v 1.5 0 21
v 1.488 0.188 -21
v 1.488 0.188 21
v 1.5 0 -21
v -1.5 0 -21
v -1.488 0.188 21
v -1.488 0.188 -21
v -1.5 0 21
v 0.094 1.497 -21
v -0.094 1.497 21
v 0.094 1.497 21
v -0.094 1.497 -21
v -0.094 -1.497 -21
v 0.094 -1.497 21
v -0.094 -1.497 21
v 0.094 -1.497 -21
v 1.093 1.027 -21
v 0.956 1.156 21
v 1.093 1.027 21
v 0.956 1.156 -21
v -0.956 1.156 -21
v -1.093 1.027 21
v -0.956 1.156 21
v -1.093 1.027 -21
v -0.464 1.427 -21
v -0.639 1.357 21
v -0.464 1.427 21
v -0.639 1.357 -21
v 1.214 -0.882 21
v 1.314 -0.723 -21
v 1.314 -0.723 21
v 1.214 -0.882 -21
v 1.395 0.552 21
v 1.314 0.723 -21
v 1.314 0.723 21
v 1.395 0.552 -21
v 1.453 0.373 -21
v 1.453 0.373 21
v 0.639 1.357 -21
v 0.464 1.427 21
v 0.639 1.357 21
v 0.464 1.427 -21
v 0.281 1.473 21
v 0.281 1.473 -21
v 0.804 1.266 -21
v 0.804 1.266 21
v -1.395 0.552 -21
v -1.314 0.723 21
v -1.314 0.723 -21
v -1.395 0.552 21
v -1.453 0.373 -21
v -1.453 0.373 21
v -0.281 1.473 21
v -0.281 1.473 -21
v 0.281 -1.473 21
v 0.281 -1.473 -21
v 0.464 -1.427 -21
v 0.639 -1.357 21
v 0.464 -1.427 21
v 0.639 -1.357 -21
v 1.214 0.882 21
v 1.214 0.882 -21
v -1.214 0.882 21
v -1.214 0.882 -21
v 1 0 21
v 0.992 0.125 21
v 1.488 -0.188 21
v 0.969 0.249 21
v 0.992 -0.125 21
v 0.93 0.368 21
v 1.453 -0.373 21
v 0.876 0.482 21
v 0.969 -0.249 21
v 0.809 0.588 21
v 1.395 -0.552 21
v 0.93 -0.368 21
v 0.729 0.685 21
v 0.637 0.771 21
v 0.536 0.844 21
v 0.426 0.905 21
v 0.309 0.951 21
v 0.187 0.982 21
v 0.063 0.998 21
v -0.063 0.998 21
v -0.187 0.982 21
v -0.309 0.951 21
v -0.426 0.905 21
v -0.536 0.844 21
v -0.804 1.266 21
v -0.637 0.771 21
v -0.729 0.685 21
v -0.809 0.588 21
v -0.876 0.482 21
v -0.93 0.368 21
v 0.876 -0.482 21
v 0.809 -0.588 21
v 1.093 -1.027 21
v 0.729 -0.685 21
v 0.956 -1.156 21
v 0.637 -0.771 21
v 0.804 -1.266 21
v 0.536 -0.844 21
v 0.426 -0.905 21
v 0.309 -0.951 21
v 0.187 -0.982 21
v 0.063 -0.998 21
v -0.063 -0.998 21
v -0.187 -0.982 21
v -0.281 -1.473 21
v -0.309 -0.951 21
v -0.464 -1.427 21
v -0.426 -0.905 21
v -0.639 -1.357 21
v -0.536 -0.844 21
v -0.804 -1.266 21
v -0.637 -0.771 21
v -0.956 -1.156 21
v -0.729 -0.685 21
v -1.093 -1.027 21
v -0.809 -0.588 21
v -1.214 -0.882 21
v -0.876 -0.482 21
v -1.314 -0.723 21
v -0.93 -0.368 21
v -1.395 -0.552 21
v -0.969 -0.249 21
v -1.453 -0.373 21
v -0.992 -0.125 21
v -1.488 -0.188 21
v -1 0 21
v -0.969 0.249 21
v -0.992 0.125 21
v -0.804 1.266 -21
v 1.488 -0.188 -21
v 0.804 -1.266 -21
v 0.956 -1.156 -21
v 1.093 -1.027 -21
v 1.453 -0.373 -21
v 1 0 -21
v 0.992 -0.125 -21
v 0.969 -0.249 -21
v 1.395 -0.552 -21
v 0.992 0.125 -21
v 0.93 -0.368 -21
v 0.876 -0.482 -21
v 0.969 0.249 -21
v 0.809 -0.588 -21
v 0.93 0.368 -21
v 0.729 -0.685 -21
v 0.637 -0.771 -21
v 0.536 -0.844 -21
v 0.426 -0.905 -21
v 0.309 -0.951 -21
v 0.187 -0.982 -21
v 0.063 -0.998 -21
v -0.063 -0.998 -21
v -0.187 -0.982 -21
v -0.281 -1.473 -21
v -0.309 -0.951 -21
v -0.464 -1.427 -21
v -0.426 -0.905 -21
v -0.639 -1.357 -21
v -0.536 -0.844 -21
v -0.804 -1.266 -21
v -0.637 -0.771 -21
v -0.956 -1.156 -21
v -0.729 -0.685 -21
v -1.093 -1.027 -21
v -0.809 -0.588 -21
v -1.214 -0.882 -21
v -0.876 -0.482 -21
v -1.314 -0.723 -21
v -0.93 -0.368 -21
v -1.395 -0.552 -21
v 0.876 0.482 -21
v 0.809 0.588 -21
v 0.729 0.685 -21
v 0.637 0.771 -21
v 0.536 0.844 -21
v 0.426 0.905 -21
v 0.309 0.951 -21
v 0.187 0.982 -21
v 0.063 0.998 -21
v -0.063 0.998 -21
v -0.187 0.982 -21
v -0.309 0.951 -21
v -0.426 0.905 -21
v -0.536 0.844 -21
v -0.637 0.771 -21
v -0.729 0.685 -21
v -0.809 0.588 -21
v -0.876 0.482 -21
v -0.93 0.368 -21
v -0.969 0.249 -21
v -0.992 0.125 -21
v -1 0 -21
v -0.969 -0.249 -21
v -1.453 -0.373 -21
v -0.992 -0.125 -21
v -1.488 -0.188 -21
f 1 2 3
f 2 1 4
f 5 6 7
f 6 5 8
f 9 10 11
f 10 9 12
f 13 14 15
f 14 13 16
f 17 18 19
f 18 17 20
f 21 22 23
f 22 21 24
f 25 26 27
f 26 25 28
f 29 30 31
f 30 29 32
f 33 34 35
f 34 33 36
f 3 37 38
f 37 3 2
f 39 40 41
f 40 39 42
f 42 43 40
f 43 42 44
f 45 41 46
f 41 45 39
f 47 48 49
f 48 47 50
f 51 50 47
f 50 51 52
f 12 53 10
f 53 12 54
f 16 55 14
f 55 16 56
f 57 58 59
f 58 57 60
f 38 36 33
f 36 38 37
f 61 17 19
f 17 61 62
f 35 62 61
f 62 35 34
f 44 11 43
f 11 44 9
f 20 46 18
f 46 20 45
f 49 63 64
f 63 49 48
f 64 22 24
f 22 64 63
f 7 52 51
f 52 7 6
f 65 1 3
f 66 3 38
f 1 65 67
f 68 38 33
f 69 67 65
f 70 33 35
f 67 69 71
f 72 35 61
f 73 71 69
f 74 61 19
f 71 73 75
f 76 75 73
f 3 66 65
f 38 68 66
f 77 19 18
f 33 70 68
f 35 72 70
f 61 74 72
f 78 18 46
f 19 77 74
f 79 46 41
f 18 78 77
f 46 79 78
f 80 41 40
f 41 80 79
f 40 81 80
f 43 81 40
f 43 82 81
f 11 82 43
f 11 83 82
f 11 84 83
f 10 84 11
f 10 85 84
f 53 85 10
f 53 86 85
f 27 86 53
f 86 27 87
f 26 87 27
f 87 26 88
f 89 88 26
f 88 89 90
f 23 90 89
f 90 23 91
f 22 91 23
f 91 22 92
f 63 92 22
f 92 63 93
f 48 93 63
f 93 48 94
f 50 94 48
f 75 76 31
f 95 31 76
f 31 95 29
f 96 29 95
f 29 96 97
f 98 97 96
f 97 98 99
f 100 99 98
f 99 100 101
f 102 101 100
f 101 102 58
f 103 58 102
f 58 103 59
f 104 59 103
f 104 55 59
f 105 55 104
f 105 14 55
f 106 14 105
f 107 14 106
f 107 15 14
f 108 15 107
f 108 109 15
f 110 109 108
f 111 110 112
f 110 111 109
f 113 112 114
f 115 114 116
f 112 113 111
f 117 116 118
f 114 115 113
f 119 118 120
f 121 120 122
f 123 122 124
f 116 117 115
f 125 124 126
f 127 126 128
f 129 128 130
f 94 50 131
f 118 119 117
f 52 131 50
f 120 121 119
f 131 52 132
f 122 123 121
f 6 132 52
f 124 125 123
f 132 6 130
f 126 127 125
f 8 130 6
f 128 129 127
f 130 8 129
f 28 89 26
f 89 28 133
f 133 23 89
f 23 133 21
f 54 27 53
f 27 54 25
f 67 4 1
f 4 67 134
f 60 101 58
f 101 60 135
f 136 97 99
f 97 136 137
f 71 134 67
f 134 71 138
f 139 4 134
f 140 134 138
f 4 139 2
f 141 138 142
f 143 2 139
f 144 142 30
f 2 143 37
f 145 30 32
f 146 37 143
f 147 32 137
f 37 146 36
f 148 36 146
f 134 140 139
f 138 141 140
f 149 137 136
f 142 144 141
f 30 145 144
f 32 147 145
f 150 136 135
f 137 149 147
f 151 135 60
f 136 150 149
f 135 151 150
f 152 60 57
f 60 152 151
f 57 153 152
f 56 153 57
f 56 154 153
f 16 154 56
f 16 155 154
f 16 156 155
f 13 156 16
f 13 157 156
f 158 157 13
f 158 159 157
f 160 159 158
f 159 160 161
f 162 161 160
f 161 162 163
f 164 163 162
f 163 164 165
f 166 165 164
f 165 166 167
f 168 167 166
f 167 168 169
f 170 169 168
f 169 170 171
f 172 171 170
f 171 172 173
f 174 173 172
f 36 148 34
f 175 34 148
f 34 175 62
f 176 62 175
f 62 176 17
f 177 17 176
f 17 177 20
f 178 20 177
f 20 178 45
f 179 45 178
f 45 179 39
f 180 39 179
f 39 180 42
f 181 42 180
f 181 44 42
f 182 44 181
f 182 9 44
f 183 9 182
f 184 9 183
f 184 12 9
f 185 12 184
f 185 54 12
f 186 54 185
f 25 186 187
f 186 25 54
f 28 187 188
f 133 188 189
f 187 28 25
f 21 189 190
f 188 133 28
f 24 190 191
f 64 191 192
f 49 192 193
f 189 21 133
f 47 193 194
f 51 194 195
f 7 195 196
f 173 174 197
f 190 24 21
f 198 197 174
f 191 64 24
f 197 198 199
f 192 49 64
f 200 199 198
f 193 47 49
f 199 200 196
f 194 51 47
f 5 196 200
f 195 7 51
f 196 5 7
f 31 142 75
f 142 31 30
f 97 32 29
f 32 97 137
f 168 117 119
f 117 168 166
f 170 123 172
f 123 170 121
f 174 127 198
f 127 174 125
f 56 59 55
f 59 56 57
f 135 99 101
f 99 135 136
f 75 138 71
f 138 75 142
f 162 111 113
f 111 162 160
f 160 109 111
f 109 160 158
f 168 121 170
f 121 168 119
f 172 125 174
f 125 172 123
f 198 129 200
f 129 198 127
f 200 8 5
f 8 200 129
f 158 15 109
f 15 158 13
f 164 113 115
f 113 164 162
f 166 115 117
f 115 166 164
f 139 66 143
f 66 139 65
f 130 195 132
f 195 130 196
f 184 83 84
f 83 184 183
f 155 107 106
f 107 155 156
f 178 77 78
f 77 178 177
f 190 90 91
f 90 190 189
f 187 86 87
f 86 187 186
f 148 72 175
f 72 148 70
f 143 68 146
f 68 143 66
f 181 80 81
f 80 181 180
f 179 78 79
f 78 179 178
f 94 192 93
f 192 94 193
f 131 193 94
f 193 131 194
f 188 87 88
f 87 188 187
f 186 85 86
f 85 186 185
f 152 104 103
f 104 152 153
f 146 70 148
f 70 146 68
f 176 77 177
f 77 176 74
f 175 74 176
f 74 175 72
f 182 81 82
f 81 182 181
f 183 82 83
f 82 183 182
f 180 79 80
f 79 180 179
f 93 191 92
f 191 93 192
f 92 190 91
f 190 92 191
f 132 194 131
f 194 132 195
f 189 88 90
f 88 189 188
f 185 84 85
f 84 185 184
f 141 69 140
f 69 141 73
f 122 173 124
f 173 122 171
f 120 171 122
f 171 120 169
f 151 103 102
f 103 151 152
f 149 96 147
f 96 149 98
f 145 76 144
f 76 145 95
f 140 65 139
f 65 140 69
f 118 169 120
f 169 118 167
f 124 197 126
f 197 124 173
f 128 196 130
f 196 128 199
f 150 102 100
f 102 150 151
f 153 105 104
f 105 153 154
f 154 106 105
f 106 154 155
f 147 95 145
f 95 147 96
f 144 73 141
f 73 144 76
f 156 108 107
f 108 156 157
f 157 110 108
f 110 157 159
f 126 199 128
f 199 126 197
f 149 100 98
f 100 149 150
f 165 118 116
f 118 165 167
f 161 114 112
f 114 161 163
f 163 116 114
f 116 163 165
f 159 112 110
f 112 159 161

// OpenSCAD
$fn = 50;


difference() {
	union() {
		translate(v = [0, 0, -21.0000000000]) {
			cylinder(h = 42, r = 1.5000000000);
		}
	}
	union() {
		translate(v = [0, 0, -100.0000000000]) {
			cylinder(h = 200, r = 1.0000000000);
		}
	}
}
